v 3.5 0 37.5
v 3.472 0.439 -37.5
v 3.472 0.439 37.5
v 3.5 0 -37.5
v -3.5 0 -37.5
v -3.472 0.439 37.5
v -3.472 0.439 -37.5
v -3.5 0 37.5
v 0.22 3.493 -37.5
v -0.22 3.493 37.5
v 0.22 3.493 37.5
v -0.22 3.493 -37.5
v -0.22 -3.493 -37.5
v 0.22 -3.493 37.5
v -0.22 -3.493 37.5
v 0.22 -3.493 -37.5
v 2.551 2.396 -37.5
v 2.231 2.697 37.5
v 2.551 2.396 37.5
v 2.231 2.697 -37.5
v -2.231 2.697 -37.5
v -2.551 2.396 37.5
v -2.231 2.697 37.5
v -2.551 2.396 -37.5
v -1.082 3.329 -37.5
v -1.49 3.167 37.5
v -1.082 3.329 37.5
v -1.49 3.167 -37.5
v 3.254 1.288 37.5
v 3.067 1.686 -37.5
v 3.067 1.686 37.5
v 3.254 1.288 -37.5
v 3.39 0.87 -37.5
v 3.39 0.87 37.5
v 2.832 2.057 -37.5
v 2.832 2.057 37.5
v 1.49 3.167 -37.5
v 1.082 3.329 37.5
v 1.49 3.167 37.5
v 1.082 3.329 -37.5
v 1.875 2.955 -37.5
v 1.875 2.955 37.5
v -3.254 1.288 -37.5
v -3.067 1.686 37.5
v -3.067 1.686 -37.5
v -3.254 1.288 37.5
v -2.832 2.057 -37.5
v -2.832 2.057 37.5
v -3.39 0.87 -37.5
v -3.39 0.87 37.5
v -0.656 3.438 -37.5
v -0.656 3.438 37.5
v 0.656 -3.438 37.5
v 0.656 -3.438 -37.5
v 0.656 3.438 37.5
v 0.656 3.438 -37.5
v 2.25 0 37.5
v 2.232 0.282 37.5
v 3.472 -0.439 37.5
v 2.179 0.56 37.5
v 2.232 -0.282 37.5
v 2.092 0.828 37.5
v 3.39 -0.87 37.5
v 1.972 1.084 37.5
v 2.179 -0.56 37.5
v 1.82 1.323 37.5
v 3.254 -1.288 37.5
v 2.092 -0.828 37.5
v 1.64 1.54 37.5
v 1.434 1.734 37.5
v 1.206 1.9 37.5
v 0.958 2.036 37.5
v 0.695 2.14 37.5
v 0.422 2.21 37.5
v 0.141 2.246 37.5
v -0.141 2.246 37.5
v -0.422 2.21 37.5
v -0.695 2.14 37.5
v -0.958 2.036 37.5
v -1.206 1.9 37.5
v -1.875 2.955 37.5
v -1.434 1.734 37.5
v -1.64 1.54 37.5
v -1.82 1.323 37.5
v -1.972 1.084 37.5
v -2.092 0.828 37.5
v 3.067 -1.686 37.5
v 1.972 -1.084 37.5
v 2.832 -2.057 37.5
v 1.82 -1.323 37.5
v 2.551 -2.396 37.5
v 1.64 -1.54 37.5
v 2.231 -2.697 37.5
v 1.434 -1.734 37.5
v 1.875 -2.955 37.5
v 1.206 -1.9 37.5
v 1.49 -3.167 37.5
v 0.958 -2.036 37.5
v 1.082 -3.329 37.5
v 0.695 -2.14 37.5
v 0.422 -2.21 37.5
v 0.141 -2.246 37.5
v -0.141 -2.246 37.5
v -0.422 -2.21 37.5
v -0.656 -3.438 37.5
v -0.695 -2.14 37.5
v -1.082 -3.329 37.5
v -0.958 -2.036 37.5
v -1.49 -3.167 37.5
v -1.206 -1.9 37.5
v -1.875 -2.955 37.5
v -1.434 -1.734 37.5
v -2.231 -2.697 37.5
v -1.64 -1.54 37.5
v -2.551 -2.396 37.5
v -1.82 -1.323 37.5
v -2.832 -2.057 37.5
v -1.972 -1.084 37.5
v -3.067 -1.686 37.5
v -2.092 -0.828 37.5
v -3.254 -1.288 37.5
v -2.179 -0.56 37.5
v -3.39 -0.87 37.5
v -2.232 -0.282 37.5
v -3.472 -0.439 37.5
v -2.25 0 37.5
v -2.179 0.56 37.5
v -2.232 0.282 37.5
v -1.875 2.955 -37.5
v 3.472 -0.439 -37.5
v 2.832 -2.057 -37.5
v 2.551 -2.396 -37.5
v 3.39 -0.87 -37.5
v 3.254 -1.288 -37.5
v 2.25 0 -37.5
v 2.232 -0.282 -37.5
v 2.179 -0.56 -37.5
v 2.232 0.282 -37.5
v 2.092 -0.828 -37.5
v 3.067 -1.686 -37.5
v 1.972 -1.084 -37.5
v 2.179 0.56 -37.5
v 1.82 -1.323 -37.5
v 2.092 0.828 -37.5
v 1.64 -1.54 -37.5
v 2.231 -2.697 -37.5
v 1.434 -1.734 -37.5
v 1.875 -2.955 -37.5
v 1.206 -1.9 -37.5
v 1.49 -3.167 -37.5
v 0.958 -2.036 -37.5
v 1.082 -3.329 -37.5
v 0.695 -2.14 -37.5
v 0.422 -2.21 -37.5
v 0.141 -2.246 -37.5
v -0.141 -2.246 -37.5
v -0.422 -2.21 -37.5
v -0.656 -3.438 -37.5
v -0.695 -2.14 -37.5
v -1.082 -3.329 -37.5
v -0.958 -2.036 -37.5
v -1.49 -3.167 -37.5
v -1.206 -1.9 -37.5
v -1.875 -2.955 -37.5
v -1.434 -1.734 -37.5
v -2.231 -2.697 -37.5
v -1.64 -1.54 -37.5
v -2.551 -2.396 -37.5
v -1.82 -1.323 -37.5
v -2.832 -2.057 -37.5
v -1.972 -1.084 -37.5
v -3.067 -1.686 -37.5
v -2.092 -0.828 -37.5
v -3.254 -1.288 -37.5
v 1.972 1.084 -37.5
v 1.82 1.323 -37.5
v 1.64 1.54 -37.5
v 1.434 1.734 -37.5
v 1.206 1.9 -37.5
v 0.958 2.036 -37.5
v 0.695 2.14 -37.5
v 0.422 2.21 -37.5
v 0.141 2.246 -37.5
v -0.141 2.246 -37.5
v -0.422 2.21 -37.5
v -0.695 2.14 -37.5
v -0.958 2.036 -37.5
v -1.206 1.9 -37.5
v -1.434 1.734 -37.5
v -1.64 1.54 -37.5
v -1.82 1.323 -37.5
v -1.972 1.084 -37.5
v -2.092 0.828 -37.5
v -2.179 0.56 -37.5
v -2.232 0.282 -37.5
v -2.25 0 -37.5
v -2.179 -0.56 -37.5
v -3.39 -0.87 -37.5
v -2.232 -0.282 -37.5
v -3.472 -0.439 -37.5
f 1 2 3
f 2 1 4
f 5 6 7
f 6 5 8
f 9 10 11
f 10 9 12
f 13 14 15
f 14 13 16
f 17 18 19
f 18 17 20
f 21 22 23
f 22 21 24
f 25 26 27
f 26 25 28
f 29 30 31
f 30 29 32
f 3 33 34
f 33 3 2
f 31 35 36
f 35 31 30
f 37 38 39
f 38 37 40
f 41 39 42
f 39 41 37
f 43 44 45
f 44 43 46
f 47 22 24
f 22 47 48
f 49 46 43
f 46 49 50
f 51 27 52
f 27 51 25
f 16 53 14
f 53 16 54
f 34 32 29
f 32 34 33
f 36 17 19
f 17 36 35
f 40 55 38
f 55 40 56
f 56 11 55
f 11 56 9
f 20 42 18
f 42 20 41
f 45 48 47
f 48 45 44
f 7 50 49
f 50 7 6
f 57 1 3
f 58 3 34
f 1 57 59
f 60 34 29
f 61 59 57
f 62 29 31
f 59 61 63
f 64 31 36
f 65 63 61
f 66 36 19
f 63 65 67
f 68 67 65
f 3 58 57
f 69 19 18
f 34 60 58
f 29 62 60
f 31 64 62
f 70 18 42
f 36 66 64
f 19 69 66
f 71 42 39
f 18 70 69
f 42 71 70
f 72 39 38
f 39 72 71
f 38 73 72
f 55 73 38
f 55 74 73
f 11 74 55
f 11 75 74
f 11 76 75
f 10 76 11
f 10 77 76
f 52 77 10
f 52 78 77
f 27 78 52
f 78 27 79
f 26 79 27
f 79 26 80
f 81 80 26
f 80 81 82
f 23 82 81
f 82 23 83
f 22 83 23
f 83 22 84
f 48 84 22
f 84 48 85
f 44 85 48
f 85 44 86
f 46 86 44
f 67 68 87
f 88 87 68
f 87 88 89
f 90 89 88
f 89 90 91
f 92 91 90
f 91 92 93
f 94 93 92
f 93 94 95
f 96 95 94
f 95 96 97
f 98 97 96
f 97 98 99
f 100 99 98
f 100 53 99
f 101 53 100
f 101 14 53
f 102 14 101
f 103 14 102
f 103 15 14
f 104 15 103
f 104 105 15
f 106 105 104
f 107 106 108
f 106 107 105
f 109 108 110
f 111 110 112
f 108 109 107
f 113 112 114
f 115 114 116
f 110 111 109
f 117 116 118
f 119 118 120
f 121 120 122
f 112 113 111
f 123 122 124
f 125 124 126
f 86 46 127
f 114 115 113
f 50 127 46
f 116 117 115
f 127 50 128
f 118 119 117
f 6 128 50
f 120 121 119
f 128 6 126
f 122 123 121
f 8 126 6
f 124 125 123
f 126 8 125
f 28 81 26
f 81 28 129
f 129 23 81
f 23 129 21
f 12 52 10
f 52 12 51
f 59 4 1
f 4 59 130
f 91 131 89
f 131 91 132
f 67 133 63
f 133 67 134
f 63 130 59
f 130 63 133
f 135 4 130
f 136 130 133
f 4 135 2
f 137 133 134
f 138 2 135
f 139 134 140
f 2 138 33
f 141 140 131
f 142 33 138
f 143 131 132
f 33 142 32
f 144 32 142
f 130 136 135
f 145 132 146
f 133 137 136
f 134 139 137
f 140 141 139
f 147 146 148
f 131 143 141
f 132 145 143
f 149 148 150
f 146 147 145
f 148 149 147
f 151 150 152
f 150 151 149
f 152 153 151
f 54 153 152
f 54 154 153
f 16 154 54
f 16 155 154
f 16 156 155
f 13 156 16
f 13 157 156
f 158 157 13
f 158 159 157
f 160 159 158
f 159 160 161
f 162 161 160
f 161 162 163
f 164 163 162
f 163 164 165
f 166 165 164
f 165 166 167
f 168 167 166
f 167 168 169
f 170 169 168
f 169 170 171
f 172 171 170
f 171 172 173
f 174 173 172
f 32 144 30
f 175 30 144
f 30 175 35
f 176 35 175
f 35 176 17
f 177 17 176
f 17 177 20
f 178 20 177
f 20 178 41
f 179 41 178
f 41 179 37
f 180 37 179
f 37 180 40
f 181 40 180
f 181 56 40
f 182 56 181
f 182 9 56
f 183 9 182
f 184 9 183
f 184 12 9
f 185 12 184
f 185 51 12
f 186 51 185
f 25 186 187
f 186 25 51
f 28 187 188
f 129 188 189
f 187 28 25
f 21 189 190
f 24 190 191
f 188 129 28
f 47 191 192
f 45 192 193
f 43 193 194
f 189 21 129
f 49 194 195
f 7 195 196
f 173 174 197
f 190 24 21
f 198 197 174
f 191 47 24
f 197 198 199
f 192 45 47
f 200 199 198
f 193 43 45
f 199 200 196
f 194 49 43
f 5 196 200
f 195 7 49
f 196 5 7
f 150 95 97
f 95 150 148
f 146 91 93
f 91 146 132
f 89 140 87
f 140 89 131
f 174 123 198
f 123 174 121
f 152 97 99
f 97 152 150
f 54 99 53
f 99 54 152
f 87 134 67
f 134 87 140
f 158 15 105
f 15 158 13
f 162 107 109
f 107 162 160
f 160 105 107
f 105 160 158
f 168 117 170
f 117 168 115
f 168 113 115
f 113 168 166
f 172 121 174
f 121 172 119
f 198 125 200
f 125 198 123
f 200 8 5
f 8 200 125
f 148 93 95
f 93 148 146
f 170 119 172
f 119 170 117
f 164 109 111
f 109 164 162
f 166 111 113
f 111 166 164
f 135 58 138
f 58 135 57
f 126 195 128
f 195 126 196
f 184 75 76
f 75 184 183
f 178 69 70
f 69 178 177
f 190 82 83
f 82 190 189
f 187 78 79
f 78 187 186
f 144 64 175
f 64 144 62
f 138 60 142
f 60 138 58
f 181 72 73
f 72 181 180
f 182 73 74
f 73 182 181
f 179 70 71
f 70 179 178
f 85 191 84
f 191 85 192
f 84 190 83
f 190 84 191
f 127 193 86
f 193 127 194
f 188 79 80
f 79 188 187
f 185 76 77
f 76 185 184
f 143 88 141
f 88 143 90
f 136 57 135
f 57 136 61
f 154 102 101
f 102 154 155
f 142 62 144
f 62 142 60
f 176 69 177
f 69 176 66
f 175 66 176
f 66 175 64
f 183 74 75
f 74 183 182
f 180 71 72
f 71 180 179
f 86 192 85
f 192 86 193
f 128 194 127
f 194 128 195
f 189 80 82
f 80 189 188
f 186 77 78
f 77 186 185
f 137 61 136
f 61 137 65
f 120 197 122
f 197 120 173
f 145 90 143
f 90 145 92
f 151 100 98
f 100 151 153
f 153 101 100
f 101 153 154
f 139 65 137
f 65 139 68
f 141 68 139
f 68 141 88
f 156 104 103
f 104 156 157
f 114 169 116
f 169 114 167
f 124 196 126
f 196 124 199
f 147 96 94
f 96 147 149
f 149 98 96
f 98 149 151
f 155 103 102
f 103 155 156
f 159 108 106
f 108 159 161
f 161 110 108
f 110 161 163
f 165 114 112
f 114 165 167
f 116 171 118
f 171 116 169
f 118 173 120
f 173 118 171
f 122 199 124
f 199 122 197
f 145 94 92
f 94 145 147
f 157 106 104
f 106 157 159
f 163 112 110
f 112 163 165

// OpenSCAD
$fn = 50;


difference() {
	union() {
		translate(v = [0, 0, -37.5000000000]) {
			cylinder(h = 75, r = 3.5000000000);
		}
	}
	union() {
		translate(v = [0, 0, -100.0000000000]) {
			cylinder(h = 200, r = 2.2500000000);
		}
	}
}
